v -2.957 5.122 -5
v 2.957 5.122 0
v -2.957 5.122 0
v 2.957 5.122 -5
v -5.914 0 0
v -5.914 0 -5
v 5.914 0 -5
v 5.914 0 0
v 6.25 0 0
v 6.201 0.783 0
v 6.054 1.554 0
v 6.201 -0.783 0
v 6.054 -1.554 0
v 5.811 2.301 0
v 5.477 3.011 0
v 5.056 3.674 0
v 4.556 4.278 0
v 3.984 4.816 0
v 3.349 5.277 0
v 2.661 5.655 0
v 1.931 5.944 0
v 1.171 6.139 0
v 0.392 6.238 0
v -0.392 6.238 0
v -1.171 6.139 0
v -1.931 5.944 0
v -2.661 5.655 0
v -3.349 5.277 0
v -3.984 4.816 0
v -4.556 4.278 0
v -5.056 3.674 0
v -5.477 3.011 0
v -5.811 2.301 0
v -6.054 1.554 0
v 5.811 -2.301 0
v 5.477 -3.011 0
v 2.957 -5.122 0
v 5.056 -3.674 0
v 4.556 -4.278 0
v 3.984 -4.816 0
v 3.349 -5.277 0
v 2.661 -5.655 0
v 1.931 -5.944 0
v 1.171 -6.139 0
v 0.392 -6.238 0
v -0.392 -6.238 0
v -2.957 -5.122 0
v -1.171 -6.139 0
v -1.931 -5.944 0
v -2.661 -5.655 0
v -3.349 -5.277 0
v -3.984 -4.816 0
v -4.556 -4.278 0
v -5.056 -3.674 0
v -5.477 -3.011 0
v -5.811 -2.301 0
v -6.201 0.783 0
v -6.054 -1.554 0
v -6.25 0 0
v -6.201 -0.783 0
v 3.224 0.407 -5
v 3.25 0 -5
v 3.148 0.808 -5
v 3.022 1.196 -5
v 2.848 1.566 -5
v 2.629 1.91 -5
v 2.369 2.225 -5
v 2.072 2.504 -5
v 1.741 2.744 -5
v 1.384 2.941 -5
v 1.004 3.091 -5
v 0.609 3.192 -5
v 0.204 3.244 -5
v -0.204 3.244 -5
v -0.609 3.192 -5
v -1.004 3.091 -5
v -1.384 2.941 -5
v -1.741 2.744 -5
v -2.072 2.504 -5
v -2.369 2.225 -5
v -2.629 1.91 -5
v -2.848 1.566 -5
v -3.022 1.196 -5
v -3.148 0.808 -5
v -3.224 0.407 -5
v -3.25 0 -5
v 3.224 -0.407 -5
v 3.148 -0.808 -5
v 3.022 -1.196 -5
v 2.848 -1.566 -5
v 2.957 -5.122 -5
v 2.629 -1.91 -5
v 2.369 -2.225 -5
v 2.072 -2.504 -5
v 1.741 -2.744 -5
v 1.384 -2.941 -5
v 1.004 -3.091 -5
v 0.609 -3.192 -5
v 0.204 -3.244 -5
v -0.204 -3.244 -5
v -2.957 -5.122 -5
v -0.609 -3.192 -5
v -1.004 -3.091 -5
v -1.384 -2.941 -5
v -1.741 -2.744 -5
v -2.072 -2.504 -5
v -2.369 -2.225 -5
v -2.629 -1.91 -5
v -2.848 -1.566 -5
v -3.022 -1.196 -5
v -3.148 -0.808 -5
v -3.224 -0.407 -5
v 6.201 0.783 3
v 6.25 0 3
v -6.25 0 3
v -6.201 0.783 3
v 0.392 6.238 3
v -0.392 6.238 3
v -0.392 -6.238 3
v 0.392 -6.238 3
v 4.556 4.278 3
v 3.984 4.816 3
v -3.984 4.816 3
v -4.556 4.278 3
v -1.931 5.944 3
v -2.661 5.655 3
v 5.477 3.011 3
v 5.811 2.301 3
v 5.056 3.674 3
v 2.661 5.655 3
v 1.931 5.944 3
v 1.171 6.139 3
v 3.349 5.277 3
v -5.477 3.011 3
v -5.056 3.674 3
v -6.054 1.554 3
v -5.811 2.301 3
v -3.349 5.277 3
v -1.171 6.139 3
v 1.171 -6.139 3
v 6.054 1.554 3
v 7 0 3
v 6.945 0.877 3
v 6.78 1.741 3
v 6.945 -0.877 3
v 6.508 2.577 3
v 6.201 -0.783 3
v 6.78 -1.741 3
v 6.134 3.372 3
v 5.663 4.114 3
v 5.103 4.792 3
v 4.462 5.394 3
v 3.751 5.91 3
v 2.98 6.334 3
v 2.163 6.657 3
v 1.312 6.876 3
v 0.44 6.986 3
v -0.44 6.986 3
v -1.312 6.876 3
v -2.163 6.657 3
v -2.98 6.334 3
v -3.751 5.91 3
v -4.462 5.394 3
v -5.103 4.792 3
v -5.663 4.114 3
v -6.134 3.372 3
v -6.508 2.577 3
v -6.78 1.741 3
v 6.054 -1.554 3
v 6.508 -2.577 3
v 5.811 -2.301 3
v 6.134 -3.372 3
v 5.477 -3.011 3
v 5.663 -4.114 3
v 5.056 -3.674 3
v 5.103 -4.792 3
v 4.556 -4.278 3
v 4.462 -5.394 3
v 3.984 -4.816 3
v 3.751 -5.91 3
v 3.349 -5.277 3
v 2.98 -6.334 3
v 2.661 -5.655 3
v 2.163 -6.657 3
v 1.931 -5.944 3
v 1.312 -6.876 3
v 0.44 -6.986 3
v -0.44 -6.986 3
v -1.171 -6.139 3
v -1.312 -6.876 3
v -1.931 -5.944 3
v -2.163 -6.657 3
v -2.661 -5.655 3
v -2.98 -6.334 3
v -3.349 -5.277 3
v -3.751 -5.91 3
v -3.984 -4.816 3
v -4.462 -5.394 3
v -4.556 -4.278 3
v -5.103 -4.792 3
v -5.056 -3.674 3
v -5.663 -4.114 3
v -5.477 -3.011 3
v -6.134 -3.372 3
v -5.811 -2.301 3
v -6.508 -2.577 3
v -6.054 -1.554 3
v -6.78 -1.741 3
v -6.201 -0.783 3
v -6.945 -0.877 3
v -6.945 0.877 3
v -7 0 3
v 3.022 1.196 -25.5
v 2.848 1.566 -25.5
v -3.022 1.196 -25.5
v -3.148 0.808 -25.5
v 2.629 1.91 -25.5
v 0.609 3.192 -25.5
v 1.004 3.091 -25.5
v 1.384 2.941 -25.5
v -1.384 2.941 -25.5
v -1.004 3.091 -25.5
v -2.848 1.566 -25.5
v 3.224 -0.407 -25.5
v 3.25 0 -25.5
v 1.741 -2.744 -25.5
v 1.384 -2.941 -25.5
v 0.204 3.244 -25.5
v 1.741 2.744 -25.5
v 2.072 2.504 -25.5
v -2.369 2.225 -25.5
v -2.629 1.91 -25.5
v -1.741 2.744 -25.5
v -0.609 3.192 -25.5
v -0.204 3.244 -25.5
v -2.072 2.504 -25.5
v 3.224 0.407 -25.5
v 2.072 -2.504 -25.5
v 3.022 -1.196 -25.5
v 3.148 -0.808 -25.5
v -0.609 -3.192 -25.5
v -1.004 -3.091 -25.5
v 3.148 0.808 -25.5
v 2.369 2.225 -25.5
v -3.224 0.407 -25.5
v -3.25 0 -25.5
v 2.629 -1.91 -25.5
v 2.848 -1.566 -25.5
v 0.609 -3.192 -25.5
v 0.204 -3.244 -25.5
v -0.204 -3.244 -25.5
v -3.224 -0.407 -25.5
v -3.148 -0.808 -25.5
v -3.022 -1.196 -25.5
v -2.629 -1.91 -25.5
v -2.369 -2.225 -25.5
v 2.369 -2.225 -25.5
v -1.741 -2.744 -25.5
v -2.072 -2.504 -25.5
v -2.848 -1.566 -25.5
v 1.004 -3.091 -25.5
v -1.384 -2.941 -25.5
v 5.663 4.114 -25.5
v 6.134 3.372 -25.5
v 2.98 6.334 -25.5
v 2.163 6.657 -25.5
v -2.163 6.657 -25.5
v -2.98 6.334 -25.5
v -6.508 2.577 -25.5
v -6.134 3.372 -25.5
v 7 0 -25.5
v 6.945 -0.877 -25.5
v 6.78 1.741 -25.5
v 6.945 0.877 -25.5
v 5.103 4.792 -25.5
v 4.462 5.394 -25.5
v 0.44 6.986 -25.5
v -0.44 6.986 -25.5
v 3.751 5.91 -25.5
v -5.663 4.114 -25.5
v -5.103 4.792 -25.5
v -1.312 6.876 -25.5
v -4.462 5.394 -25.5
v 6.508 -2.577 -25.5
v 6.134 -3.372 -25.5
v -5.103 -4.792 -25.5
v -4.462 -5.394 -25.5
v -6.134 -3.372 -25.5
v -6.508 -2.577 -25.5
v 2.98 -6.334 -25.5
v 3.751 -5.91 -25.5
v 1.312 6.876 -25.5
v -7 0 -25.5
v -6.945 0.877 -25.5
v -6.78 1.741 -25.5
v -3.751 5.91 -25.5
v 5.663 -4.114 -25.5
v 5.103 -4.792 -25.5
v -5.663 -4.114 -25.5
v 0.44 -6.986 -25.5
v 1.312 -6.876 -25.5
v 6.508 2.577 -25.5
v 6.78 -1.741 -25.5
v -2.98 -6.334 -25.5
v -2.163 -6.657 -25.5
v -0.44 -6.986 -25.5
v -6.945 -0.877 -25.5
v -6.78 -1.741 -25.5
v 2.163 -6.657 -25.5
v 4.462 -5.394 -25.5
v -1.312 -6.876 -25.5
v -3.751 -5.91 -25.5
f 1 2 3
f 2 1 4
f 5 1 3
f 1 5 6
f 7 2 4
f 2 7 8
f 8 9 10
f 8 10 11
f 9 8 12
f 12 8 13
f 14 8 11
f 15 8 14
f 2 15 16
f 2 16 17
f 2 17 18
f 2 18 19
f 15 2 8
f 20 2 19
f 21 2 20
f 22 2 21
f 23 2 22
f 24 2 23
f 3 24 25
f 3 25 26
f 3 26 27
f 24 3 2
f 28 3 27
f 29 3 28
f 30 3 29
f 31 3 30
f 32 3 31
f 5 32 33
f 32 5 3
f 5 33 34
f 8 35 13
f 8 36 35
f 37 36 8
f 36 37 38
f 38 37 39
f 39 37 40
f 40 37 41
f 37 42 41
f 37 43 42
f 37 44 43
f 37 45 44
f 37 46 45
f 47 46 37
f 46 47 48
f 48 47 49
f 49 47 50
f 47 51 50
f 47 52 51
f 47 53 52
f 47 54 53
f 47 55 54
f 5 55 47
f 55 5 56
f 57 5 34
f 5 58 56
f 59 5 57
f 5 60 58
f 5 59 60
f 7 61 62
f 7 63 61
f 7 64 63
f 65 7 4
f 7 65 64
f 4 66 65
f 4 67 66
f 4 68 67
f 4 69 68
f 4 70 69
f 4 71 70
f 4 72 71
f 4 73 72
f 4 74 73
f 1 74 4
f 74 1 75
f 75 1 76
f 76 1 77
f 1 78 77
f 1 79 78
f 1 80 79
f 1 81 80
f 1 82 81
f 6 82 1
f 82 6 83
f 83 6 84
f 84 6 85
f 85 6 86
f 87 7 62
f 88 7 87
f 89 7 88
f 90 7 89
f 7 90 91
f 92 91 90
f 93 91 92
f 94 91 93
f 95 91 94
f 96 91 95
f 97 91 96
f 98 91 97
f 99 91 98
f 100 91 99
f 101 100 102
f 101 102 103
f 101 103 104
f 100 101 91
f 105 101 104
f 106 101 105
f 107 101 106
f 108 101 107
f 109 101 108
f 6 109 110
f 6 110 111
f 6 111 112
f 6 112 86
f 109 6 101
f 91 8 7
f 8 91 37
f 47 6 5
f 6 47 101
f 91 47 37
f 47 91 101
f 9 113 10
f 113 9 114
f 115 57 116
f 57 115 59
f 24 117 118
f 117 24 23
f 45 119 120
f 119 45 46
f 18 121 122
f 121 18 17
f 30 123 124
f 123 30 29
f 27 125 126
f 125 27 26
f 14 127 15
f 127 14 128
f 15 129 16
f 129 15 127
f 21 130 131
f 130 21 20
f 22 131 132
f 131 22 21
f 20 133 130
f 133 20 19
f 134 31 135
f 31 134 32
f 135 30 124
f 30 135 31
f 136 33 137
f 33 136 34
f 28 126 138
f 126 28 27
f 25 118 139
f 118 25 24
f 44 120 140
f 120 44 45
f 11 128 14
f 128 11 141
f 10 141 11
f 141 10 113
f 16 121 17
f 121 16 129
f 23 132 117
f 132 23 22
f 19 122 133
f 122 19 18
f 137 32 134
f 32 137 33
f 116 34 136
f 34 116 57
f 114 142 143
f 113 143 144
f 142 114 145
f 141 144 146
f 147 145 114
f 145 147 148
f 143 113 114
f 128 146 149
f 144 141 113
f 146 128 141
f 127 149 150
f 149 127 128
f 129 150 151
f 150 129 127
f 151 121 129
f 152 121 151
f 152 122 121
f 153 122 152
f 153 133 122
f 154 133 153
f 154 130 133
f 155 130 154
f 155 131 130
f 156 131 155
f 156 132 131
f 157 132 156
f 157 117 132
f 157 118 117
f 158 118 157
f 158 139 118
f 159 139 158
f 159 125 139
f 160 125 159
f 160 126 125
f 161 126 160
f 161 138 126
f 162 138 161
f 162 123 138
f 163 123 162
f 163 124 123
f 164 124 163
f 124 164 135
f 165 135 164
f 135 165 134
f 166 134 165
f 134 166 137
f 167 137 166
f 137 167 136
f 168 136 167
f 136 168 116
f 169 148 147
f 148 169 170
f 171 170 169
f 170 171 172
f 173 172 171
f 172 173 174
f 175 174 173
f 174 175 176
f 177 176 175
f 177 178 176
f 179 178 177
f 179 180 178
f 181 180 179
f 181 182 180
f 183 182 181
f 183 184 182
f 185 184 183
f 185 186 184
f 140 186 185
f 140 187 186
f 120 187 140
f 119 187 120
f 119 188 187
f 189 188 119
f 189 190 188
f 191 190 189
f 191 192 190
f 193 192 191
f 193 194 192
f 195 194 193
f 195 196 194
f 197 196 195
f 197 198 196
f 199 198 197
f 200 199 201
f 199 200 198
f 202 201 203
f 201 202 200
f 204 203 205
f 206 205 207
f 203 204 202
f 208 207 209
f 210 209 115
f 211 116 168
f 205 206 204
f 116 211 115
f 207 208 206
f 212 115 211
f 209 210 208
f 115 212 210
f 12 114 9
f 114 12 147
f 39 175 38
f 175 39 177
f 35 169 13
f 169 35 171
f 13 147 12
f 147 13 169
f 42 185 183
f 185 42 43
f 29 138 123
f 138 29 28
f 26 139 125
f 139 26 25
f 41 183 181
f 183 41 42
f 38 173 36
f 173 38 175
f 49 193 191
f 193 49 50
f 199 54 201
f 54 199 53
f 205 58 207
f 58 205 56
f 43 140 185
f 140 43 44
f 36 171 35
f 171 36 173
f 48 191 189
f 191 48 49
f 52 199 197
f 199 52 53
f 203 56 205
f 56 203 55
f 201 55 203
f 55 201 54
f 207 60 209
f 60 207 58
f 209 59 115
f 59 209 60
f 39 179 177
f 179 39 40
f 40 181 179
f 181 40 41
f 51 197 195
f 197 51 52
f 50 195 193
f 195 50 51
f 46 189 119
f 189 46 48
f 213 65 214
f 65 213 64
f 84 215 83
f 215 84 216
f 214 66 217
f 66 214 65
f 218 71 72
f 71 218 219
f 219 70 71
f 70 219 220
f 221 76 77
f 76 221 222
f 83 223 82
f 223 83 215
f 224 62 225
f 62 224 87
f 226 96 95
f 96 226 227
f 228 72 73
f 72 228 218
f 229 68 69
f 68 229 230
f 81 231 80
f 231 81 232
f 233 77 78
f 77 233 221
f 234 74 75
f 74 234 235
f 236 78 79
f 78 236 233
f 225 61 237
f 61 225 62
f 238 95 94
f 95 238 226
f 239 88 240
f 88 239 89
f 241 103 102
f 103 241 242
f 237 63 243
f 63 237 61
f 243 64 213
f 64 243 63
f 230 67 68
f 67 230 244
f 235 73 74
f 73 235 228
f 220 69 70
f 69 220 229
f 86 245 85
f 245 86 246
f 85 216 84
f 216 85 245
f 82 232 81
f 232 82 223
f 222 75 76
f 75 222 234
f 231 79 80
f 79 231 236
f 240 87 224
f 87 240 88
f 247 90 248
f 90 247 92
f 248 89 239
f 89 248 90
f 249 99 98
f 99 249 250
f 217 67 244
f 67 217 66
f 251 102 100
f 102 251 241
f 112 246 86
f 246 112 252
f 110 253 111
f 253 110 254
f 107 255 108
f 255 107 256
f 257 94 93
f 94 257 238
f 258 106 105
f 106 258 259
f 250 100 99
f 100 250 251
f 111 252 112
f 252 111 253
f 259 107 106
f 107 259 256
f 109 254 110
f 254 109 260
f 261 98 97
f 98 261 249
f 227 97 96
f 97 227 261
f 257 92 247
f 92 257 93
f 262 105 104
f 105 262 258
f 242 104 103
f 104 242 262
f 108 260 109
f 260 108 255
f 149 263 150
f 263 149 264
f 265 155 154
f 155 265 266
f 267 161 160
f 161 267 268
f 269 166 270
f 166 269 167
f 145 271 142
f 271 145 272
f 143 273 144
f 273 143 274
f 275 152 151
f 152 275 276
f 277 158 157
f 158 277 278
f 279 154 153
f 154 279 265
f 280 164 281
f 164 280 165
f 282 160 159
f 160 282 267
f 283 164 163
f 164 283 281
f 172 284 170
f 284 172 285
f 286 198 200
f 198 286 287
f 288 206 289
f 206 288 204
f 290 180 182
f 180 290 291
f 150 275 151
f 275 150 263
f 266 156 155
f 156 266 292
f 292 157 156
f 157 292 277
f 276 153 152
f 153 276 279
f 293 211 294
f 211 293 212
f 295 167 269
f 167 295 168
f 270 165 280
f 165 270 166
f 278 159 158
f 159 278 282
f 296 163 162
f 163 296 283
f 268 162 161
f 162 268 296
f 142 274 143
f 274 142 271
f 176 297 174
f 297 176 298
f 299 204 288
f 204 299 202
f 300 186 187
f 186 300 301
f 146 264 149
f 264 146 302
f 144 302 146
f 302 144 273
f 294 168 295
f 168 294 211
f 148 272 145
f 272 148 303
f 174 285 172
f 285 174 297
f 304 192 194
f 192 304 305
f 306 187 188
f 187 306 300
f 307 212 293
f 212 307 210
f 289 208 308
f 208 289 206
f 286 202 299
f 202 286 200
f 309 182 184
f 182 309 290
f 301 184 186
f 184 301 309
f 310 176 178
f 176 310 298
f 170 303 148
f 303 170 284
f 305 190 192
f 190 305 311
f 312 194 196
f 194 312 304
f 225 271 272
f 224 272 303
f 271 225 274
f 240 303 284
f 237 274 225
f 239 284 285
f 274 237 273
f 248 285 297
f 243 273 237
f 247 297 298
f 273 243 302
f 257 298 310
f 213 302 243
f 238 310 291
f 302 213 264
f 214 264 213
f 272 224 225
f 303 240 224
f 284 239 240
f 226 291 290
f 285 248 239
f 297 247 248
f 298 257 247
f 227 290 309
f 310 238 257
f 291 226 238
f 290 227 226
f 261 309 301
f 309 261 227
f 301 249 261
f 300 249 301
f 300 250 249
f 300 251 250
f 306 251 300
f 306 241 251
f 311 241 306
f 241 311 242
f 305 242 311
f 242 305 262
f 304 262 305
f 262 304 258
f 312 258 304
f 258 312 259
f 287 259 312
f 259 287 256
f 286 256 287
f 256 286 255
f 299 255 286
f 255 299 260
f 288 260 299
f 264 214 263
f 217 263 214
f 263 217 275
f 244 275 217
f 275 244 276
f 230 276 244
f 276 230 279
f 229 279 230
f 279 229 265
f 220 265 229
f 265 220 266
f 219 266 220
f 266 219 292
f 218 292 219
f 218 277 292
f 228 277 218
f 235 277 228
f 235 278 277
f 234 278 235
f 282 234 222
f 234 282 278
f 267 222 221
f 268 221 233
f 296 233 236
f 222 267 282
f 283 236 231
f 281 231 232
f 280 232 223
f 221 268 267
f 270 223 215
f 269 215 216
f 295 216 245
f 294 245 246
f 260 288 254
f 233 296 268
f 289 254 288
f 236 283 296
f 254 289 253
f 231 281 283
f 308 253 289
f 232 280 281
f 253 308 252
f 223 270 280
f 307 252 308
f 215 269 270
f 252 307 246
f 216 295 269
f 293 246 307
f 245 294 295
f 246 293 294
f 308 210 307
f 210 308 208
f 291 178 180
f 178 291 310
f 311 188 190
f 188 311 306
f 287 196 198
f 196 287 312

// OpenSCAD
$fn = 50;

difference() {
	union() {
		translate(v = [0, 0, -25.5]) {
			cylinder(h = 28.5, r = 7.0);
		}
	}
	union() {
		translate(v = [0, 0, 0]) {
			rotate(a = [0, 0, 0]) {
				difference() {
					union() {
						translate(v = [0, 0, -5]) {
							linear_extrude(height = 5) {
								polygon(points = [[5.914249999999999, 0.0], [2.957125, 5.1218907443321156], [-2.9571249999999982, 5.1218907443321156], [-5.914249999999999, 7.242867331857232e-16], [-2.9571250000000022, -5.121890744332115], [2.9571249999999956, -5.121890744332118]]);
							}
						}
					}
					union();
				}
			}
		}
		#cylinder(h = 3, r = 6.25);
		#translate(v = [0, 0, -100.0]) {
			cylinder(h = 200, r = 3.25);
		}
	}
}
